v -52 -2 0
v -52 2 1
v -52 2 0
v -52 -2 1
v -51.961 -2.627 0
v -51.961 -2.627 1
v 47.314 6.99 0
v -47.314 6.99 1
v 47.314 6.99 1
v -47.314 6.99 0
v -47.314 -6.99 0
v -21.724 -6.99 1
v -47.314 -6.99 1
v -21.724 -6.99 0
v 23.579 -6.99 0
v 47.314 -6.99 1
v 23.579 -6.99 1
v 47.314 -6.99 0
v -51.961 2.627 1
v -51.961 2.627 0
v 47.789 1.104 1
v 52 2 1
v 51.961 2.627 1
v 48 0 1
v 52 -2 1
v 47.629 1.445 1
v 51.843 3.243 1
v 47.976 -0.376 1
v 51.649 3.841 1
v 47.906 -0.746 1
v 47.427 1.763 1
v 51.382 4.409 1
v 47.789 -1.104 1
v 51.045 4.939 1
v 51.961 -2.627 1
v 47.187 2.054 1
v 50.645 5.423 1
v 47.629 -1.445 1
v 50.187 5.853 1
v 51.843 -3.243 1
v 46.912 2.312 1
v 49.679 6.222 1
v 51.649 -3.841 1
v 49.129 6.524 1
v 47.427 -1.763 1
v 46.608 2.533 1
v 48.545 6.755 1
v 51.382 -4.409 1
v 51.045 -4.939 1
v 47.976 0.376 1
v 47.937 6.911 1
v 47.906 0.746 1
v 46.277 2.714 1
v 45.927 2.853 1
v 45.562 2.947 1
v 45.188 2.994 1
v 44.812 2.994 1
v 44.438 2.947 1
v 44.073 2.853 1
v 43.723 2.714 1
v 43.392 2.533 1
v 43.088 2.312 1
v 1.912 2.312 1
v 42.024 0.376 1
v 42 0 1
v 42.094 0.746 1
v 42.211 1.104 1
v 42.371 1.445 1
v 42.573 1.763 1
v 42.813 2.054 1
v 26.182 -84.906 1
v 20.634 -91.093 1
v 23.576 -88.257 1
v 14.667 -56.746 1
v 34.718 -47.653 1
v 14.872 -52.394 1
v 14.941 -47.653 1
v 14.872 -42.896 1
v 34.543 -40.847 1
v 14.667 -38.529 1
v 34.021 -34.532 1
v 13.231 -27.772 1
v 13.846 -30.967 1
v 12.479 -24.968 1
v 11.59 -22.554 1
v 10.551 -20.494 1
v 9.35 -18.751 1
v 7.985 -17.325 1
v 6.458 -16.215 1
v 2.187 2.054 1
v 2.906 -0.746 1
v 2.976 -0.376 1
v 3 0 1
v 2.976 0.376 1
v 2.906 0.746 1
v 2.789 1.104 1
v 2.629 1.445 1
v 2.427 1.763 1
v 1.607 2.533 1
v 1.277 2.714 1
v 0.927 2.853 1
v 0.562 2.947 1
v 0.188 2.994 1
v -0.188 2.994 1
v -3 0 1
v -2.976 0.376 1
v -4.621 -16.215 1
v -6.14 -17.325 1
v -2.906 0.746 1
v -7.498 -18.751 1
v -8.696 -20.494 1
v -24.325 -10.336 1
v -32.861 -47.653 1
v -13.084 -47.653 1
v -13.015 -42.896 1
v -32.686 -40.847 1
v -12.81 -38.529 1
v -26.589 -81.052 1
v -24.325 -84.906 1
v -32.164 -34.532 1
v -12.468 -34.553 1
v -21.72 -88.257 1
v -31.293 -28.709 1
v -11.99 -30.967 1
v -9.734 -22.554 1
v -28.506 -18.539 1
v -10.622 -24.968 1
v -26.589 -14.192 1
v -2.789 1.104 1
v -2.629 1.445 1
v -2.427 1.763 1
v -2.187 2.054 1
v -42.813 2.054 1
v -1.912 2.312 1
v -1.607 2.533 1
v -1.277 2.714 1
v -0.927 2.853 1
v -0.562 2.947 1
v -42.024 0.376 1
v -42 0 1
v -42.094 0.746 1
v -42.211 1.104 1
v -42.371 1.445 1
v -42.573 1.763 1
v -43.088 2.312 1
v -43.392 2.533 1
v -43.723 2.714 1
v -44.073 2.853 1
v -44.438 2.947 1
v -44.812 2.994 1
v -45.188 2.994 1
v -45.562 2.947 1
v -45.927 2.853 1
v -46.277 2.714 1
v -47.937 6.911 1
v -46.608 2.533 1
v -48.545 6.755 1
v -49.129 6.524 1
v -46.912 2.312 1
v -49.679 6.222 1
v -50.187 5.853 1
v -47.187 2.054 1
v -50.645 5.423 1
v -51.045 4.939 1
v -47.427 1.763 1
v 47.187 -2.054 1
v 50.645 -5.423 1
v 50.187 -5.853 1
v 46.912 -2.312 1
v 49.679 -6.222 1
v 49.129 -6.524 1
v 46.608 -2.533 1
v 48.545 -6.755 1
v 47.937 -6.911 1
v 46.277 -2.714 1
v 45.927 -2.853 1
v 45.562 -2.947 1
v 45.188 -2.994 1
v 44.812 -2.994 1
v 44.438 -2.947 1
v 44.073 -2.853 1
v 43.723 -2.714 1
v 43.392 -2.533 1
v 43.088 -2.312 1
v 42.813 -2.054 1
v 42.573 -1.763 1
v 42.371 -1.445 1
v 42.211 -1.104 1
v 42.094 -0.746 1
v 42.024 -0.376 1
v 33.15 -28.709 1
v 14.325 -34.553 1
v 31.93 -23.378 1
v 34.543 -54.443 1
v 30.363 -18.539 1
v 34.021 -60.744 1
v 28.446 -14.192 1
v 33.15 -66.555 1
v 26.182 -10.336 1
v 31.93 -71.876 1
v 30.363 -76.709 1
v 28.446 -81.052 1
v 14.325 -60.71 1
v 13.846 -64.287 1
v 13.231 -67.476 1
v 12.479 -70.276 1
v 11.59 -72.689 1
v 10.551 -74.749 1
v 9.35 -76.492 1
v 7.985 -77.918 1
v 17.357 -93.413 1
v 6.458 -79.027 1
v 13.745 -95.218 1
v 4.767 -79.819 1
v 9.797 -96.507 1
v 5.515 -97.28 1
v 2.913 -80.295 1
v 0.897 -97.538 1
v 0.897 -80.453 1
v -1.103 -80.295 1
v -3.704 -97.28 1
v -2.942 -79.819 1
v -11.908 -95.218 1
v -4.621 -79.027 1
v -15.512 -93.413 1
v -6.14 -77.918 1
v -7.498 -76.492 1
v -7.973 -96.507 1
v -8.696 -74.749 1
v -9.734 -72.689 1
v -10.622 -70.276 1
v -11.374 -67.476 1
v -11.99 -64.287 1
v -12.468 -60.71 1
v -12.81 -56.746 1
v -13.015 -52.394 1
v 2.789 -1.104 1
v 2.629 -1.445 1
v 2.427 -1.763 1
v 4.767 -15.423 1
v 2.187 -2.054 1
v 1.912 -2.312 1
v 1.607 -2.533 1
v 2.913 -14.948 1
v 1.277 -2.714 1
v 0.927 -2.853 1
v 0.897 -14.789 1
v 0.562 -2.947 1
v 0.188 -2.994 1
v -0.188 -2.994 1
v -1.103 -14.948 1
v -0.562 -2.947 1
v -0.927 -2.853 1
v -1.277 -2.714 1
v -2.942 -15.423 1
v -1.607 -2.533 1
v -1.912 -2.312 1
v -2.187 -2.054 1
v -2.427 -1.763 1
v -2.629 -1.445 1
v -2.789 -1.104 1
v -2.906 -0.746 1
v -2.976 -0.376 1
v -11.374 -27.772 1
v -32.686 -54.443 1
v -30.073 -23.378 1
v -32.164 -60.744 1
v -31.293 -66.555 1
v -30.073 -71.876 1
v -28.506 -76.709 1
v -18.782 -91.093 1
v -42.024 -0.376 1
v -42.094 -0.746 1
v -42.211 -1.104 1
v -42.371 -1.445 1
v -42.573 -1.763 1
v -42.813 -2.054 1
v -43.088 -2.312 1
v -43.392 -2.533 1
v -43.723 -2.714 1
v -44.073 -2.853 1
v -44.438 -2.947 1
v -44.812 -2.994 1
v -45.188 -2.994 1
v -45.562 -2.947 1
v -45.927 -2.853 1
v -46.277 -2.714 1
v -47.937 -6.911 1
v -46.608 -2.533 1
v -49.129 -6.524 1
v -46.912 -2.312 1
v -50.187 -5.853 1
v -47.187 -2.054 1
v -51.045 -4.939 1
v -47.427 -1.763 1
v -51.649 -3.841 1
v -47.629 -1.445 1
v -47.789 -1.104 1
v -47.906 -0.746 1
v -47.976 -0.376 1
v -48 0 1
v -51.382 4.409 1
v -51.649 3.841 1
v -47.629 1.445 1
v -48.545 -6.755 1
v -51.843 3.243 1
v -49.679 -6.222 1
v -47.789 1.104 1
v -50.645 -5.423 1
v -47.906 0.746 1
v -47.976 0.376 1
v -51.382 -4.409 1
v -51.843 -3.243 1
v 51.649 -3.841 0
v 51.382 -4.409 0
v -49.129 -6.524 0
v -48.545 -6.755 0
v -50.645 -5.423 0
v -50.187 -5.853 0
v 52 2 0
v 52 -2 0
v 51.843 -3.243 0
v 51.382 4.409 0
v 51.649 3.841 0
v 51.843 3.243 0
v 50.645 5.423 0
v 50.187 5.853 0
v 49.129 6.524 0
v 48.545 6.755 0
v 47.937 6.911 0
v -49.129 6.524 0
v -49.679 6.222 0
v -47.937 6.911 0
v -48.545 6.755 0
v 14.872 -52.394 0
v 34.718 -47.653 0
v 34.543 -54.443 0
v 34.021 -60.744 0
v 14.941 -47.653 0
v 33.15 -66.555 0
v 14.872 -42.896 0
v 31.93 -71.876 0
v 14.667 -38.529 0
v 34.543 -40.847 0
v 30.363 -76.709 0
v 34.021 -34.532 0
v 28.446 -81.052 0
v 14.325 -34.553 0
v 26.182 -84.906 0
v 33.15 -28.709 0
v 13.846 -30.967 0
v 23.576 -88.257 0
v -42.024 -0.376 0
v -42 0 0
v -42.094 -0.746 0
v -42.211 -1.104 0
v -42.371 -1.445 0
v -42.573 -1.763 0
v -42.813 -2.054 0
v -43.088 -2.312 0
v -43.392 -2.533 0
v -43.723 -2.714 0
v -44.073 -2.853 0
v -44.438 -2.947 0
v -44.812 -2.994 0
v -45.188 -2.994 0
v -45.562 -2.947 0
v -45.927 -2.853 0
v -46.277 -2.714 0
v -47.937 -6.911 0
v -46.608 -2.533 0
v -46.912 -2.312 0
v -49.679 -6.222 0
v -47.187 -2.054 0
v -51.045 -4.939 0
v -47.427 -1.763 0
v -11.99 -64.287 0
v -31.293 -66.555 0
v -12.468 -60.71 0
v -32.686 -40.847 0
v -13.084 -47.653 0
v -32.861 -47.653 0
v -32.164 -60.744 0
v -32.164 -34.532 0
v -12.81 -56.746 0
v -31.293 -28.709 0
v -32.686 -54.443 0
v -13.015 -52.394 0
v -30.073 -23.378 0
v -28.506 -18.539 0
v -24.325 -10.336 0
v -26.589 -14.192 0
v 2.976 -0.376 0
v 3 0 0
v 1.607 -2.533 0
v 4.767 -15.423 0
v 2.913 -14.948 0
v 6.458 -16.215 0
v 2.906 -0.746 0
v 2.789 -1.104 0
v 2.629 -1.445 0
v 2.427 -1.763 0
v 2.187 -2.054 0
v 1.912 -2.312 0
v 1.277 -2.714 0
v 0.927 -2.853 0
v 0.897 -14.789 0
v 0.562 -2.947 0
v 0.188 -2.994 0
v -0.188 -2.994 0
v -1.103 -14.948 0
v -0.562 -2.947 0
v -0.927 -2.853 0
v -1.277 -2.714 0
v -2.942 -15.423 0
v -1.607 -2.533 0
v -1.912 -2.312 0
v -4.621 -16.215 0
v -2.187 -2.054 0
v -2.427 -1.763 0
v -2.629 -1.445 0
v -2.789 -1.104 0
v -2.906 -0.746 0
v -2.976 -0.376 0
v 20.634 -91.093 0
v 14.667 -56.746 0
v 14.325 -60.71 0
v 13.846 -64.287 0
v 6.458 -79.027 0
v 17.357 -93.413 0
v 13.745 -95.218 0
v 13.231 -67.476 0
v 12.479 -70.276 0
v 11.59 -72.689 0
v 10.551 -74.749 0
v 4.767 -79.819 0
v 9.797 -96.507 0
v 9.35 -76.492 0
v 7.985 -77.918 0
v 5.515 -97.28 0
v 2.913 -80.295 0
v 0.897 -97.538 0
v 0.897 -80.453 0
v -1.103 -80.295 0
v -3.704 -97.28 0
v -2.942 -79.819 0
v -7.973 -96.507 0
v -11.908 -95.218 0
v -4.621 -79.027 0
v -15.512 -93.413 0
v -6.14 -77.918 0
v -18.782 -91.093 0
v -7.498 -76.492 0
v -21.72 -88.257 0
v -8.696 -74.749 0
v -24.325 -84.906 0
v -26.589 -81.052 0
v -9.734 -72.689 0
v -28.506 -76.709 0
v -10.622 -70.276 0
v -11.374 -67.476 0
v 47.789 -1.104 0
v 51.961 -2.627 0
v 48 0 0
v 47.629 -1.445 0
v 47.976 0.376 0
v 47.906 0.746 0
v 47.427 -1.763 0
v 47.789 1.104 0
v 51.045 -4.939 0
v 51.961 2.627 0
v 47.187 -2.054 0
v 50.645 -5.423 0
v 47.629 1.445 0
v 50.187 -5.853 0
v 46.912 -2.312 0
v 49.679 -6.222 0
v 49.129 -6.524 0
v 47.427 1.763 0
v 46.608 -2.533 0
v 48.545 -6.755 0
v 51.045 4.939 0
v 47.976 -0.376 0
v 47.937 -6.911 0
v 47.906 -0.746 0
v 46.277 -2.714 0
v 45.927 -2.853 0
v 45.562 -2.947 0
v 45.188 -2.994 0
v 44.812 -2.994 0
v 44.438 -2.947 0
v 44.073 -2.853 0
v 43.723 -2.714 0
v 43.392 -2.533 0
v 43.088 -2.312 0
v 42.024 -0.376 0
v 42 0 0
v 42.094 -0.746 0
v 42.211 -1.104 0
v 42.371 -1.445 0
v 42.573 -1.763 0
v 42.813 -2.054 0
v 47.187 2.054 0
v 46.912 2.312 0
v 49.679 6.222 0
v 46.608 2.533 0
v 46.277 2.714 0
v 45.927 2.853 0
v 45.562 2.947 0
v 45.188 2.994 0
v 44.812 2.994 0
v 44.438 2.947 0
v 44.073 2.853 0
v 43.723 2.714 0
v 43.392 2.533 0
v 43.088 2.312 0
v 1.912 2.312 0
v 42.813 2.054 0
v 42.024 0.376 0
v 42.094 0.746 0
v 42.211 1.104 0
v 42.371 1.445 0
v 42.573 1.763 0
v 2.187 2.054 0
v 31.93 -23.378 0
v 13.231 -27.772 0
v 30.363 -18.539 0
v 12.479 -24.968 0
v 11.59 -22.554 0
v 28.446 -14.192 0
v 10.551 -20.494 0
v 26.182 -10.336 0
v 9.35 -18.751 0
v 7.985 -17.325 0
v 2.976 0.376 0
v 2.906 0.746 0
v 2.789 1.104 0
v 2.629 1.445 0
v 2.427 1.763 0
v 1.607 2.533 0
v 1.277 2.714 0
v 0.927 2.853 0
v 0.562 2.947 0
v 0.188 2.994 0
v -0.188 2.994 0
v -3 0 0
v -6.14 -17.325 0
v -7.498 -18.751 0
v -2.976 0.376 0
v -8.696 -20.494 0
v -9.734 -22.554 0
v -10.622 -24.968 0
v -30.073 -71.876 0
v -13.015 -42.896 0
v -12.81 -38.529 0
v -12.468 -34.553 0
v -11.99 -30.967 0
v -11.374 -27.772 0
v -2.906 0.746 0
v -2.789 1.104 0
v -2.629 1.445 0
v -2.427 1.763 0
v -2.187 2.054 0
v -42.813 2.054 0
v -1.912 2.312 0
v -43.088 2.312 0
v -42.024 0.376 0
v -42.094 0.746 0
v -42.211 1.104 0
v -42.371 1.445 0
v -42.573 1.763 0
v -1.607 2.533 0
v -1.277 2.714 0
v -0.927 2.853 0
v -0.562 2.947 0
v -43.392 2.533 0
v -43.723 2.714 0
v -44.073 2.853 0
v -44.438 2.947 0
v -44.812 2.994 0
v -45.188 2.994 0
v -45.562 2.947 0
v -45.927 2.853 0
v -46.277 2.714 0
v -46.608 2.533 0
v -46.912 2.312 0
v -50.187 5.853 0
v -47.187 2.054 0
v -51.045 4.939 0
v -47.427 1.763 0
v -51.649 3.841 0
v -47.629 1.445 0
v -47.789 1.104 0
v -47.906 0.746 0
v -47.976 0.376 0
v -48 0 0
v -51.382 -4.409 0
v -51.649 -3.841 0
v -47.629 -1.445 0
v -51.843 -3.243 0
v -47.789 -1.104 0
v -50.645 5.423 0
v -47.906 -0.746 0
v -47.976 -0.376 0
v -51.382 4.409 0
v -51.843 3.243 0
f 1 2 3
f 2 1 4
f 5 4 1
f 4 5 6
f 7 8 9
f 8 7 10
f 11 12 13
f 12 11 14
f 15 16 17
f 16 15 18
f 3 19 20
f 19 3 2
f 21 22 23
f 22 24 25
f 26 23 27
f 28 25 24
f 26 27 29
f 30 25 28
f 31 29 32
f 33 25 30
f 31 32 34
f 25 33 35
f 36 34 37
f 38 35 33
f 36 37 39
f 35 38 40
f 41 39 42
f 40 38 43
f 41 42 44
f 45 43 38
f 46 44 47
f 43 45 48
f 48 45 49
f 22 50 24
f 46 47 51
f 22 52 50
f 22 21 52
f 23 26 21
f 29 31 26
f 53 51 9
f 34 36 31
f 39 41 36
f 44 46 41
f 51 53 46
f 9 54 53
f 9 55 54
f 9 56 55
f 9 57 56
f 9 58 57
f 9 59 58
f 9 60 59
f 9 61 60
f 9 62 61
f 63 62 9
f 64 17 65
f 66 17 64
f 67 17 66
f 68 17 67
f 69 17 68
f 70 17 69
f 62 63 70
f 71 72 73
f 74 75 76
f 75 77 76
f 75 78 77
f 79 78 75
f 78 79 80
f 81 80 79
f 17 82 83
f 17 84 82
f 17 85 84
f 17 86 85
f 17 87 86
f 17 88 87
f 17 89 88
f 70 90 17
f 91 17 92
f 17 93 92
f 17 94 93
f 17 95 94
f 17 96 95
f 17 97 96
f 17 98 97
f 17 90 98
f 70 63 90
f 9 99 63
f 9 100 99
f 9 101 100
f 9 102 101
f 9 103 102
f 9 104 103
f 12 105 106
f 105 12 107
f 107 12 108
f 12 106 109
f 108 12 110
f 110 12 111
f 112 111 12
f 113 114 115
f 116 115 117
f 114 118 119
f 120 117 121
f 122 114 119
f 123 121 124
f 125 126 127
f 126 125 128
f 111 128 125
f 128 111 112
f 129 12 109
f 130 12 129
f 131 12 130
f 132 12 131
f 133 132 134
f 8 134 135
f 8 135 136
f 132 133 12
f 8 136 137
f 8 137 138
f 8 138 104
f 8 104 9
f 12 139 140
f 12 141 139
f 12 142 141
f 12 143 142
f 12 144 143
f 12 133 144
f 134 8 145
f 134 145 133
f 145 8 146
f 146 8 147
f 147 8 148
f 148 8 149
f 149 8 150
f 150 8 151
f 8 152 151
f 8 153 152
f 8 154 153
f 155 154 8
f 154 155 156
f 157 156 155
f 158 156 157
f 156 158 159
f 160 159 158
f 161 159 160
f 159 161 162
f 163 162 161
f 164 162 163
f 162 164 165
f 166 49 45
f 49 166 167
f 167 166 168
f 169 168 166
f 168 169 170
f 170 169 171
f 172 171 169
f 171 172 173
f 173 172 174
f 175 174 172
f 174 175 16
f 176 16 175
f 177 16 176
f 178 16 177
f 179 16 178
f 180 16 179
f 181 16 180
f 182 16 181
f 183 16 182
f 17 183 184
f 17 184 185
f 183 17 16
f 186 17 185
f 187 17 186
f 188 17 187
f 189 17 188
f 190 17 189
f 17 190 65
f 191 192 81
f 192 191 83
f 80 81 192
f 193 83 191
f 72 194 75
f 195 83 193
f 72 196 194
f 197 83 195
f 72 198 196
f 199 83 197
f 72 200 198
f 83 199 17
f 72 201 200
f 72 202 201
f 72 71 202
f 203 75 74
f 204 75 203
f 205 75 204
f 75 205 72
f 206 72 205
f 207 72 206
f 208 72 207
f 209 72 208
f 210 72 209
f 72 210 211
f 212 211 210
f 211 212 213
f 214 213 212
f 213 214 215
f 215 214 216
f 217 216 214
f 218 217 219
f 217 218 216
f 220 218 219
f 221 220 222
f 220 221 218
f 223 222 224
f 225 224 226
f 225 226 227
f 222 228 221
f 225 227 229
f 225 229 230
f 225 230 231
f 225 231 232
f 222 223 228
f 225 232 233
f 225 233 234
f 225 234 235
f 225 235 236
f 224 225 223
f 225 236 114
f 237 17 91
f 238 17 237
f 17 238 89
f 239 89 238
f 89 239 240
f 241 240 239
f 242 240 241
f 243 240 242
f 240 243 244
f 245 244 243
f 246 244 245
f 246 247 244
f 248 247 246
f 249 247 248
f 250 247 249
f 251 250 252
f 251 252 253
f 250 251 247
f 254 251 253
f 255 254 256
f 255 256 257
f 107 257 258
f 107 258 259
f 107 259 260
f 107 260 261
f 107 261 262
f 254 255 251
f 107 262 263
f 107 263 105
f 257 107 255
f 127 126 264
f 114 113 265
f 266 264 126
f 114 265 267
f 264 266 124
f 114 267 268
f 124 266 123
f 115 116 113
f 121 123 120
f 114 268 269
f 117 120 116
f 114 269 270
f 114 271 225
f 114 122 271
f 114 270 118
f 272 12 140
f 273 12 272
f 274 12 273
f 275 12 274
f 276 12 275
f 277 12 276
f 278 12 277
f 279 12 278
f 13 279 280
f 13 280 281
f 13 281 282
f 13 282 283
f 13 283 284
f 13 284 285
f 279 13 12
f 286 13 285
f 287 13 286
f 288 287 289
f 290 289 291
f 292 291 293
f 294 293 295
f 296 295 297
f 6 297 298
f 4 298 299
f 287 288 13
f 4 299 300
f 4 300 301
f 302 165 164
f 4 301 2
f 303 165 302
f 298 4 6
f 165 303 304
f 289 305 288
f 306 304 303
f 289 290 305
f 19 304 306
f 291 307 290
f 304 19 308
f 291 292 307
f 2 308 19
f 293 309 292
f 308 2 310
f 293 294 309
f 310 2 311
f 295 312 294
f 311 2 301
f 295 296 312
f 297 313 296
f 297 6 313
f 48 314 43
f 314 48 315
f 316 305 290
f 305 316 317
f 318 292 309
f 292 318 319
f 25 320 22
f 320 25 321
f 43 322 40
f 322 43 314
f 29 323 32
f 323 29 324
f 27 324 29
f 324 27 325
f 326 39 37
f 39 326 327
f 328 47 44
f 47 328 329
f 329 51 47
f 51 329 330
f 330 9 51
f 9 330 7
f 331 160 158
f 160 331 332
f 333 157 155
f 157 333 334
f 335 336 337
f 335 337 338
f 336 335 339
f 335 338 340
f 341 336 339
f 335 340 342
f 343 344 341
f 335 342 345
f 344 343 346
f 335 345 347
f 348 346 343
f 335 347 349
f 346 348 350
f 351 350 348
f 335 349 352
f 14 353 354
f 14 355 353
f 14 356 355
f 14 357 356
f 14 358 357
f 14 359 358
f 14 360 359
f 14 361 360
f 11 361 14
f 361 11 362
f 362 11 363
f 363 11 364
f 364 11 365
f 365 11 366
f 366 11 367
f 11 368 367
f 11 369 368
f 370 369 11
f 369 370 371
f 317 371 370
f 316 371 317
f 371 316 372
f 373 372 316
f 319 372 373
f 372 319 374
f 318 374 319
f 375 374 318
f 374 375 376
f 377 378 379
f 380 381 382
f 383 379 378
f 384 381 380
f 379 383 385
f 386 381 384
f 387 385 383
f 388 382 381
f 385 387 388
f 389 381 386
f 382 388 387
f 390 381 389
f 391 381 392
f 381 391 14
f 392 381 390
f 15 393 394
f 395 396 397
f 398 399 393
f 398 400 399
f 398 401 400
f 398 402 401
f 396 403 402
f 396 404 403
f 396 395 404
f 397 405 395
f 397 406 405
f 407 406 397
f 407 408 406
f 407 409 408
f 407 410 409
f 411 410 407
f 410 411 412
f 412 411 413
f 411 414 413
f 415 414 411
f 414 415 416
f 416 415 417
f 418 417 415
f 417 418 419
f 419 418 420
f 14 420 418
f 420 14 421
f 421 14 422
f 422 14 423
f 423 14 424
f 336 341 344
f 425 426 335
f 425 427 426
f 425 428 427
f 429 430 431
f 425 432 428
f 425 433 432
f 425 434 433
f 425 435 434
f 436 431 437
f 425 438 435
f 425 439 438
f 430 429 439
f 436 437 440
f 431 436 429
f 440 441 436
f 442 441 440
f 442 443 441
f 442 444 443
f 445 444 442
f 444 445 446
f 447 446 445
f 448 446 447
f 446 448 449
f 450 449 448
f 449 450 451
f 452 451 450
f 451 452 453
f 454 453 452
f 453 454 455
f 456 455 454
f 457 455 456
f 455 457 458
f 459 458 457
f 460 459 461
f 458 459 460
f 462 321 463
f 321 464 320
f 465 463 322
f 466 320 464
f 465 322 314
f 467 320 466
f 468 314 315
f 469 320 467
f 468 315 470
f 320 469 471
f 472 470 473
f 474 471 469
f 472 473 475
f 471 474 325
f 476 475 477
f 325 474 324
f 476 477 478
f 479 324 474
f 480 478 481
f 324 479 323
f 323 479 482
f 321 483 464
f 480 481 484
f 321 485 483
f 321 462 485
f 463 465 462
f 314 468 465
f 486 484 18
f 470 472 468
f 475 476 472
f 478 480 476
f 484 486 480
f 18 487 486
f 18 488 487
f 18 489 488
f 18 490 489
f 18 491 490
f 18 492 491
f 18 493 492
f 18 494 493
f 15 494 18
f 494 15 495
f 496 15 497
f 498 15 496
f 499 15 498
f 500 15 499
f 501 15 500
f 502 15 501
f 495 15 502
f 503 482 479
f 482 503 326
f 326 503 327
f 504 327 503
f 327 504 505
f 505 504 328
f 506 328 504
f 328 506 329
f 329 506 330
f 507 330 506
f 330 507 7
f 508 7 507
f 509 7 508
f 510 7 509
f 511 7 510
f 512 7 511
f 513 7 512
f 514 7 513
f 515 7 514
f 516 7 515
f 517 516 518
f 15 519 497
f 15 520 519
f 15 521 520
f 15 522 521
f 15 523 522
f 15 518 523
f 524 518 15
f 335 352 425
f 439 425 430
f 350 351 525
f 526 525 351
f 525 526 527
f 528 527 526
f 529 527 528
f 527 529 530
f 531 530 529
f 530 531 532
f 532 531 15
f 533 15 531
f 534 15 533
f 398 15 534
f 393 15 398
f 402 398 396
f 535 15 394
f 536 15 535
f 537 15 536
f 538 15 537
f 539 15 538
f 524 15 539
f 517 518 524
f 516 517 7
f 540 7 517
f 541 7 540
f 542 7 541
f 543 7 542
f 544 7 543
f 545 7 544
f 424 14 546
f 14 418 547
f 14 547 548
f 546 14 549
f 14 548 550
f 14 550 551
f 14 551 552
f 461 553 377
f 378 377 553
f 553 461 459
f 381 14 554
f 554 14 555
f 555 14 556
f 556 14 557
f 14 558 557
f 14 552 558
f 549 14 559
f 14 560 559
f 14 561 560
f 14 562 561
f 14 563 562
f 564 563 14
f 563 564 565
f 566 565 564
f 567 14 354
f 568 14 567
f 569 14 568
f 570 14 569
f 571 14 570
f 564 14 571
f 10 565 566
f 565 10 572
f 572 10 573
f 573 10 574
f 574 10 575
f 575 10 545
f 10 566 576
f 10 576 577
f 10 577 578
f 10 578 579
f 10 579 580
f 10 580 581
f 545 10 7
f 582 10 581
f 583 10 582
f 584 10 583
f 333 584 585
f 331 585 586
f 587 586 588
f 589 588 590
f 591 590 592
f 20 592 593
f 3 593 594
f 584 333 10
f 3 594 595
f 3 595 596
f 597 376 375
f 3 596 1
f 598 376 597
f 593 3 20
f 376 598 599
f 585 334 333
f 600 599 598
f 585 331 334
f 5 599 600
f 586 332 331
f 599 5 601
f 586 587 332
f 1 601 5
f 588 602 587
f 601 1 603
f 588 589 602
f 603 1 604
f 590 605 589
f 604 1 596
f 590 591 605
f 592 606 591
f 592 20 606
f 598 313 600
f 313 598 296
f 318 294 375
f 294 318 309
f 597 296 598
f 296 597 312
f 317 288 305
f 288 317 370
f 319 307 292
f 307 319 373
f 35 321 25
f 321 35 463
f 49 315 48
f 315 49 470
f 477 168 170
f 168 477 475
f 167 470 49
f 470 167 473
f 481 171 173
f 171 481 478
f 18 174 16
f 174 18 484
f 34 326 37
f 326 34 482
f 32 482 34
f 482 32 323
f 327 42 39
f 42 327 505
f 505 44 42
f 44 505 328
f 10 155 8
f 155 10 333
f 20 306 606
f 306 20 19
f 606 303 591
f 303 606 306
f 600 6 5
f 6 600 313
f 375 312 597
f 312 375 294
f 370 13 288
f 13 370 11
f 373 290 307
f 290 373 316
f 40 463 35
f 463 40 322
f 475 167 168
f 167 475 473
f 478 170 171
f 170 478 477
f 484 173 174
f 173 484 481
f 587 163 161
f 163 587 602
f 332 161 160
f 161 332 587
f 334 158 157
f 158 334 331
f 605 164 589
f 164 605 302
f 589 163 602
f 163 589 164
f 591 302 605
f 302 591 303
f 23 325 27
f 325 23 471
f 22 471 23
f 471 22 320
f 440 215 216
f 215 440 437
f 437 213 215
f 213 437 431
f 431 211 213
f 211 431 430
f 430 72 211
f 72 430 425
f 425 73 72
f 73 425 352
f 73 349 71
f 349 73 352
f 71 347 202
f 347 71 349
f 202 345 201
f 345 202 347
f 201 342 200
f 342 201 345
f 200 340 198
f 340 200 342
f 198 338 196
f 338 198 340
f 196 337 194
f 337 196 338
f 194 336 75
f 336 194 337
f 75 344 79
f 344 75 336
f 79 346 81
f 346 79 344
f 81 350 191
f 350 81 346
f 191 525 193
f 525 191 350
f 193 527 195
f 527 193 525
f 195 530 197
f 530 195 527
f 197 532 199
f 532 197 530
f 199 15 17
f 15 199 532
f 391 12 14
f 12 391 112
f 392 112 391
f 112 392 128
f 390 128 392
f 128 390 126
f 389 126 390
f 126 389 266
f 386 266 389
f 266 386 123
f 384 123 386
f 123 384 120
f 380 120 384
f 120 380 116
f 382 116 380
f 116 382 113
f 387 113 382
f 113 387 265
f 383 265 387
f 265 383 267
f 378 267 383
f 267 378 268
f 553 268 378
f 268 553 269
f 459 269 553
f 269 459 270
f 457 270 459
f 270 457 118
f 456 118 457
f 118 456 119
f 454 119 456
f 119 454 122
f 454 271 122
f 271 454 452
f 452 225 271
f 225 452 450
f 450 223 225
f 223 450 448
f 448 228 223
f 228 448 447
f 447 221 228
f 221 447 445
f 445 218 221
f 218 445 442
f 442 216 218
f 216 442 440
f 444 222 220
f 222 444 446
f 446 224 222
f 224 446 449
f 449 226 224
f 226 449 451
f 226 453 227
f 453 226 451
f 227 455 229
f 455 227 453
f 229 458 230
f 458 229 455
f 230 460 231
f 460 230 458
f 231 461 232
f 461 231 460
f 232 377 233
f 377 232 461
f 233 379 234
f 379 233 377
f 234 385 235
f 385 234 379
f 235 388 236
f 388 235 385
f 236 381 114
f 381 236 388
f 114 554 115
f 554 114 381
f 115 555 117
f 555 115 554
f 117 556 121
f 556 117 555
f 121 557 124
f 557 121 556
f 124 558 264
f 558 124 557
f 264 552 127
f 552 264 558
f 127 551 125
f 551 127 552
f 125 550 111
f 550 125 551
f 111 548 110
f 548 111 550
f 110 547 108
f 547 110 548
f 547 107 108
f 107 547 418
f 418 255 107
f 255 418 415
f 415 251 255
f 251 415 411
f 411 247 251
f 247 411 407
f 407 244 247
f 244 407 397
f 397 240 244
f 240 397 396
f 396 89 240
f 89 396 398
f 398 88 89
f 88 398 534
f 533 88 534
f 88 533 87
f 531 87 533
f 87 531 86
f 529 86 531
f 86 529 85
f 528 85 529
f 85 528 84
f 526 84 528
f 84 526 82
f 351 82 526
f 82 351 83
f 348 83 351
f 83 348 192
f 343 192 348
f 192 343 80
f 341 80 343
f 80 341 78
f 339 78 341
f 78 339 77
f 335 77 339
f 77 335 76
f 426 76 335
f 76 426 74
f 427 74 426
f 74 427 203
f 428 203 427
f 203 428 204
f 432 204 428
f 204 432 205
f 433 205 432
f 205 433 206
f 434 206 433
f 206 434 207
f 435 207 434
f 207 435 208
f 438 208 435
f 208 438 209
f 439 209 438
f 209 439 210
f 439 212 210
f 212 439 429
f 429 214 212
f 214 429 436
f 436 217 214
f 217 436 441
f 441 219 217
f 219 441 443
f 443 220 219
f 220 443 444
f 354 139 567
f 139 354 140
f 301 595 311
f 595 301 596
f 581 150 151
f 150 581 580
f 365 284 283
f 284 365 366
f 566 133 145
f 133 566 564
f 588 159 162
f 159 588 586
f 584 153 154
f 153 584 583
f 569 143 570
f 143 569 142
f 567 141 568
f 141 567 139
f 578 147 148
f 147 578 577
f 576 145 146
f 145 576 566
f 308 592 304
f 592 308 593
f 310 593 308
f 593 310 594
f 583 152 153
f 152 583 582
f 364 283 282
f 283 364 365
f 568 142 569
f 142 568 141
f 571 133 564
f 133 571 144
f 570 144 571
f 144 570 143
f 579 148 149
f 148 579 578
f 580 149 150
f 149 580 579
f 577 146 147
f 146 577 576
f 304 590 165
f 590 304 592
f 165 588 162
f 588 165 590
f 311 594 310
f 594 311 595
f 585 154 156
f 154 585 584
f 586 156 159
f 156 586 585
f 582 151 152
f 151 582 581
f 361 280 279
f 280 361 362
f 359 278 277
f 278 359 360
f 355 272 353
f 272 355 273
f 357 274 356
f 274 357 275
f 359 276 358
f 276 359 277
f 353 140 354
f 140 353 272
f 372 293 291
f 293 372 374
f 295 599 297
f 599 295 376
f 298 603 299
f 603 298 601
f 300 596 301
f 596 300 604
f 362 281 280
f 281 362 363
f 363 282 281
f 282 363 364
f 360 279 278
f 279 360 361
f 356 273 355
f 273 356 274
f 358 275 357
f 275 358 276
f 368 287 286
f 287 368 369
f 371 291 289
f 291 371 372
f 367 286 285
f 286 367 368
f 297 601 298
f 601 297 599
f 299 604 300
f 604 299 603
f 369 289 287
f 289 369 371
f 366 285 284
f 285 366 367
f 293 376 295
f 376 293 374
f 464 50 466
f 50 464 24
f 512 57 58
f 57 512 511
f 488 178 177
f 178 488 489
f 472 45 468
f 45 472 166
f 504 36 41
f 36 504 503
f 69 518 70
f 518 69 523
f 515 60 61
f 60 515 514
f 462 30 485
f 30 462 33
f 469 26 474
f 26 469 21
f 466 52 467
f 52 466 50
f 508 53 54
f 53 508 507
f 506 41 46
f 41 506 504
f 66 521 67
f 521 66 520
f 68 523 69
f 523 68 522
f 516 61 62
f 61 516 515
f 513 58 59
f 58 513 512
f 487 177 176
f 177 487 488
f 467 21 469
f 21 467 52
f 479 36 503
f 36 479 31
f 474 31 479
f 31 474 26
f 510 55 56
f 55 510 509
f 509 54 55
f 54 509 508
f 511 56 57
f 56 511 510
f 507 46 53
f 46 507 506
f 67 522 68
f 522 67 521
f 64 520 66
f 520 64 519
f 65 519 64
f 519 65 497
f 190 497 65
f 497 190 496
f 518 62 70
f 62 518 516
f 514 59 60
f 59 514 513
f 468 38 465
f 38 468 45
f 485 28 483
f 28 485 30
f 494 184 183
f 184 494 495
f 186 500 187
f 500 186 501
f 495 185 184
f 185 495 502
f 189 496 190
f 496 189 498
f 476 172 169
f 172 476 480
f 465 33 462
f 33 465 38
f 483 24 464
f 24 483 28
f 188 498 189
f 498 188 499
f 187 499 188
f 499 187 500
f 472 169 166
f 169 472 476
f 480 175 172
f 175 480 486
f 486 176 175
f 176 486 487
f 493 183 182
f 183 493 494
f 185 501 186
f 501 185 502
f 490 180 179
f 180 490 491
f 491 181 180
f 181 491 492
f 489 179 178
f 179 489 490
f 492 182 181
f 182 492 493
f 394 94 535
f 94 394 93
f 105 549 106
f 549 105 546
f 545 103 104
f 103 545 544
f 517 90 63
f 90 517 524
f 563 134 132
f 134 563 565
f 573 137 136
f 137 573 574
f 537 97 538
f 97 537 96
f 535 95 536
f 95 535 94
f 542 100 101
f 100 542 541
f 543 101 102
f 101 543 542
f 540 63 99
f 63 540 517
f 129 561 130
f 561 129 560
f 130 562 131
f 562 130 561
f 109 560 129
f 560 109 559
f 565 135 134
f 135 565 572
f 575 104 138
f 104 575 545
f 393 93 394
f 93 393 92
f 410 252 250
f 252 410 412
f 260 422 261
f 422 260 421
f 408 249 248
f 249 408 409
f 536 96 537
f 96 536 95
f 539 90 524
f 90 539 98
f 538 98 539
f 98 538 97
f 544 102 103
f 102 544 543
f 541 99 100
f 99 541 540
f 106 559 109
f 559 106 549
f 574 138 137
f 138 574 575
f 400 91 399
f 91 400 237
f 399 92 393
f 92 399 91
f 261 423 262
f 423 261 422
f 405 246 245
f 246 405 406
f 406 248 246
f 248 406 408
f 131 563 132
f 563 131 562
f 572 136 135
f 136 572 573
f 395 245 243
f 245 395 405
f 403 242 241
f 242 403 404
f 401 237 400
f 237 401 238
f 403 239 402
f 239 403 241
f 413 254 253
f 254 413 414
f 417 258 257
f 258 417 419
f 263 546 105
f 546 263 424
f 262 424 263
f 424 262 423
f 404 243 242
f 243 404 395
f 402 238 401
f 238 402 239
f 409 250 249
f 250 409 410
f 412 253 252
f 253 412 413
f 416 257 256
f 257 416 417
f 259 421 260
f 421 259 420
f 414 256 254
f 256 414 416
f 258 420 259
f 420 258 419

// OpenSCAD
$fn = 50;


difference() {
	union() {
		translate(v = [0, 0, 0]) {
			rotate(a = [0, 0, 0]) {
				hull() {
					translate(v = [-47.0000000000, 2.0000000000, 0]) {
						rotate(a = [0, 0, 0]) {
							translate(v = [0, 0, 0]) {
								rotate(a = [0, 0, 0]) {
									cylinder(h = 1, r = 5);
								}
							}
						}
					}
					translate(v = [47.0000000000, 2.0000000000, 0]) {
						rotate(a = [0, 0, 0]) {
							translate(v = [0, 0, 0]) {
								rotate(a = [0, 0, 0]) {
									cylinder(h = 1, r = 5);
								}
							}
						}
					}
					translate(v = [-47.0000000000, -2.0000000000, 0]) {
						rotate(a = [0, 0, 0]) {
							translate(v = [0, 0, 0]) {
								rotate(a = [0, 0, 0]) {
									cylinder(h = 1, r = 5);
								}
							}
						}
					}
					translate(v = [47.0000000000, -2.0000000000, 0]) {
						rotate(a = [0, 0, 0]) {
							translate(v = [0, 0, 0]) {
								rotate(a = [0, 0, 0]) {
									cylinder(h = 1, r = 5);
								}
							}
						}
					}
				}
			}
		}
		translate(v = [0, 0, 0]) {
			rotate(a = [0, 0, 0]) {
				linear_extrude(height = 1) {
					text(font = "DejaVu Sans Mono:style=Bold", halign = "center", size = 95.0000000000, text = "O", valign = "top");
				}
			}
		}
	}
	union() {
		translate(v = [-45.0000000000, 0.0000000000, -125.0000000000]) {
			rotate(a = [0, 0, 0]) {
				cylinder(h = 250, r = 3.0000000000);
			}
		}
		translate(v = [45.0000000000, 0.0000000000, -125.0000000000]) {
			rotate(a = [0, 0, 0]) {
				cylinder(h = 250, r = 3.0000000000);
			}
		}
		translate(v = [45.0000000000, 0.0000000000, -125.0000000000]) {
			rotate(a = [0, 0, 0]) {
				cylinder(h = 250, r = 3.0000000000);
			}
		}
		translate(v = [0, 0, -125.0000000000]) {
			rotate(a = [0, 0, 0]) {
				cylinder(h = 250, r = 3.0000000000);
			}
		}
	}
}
